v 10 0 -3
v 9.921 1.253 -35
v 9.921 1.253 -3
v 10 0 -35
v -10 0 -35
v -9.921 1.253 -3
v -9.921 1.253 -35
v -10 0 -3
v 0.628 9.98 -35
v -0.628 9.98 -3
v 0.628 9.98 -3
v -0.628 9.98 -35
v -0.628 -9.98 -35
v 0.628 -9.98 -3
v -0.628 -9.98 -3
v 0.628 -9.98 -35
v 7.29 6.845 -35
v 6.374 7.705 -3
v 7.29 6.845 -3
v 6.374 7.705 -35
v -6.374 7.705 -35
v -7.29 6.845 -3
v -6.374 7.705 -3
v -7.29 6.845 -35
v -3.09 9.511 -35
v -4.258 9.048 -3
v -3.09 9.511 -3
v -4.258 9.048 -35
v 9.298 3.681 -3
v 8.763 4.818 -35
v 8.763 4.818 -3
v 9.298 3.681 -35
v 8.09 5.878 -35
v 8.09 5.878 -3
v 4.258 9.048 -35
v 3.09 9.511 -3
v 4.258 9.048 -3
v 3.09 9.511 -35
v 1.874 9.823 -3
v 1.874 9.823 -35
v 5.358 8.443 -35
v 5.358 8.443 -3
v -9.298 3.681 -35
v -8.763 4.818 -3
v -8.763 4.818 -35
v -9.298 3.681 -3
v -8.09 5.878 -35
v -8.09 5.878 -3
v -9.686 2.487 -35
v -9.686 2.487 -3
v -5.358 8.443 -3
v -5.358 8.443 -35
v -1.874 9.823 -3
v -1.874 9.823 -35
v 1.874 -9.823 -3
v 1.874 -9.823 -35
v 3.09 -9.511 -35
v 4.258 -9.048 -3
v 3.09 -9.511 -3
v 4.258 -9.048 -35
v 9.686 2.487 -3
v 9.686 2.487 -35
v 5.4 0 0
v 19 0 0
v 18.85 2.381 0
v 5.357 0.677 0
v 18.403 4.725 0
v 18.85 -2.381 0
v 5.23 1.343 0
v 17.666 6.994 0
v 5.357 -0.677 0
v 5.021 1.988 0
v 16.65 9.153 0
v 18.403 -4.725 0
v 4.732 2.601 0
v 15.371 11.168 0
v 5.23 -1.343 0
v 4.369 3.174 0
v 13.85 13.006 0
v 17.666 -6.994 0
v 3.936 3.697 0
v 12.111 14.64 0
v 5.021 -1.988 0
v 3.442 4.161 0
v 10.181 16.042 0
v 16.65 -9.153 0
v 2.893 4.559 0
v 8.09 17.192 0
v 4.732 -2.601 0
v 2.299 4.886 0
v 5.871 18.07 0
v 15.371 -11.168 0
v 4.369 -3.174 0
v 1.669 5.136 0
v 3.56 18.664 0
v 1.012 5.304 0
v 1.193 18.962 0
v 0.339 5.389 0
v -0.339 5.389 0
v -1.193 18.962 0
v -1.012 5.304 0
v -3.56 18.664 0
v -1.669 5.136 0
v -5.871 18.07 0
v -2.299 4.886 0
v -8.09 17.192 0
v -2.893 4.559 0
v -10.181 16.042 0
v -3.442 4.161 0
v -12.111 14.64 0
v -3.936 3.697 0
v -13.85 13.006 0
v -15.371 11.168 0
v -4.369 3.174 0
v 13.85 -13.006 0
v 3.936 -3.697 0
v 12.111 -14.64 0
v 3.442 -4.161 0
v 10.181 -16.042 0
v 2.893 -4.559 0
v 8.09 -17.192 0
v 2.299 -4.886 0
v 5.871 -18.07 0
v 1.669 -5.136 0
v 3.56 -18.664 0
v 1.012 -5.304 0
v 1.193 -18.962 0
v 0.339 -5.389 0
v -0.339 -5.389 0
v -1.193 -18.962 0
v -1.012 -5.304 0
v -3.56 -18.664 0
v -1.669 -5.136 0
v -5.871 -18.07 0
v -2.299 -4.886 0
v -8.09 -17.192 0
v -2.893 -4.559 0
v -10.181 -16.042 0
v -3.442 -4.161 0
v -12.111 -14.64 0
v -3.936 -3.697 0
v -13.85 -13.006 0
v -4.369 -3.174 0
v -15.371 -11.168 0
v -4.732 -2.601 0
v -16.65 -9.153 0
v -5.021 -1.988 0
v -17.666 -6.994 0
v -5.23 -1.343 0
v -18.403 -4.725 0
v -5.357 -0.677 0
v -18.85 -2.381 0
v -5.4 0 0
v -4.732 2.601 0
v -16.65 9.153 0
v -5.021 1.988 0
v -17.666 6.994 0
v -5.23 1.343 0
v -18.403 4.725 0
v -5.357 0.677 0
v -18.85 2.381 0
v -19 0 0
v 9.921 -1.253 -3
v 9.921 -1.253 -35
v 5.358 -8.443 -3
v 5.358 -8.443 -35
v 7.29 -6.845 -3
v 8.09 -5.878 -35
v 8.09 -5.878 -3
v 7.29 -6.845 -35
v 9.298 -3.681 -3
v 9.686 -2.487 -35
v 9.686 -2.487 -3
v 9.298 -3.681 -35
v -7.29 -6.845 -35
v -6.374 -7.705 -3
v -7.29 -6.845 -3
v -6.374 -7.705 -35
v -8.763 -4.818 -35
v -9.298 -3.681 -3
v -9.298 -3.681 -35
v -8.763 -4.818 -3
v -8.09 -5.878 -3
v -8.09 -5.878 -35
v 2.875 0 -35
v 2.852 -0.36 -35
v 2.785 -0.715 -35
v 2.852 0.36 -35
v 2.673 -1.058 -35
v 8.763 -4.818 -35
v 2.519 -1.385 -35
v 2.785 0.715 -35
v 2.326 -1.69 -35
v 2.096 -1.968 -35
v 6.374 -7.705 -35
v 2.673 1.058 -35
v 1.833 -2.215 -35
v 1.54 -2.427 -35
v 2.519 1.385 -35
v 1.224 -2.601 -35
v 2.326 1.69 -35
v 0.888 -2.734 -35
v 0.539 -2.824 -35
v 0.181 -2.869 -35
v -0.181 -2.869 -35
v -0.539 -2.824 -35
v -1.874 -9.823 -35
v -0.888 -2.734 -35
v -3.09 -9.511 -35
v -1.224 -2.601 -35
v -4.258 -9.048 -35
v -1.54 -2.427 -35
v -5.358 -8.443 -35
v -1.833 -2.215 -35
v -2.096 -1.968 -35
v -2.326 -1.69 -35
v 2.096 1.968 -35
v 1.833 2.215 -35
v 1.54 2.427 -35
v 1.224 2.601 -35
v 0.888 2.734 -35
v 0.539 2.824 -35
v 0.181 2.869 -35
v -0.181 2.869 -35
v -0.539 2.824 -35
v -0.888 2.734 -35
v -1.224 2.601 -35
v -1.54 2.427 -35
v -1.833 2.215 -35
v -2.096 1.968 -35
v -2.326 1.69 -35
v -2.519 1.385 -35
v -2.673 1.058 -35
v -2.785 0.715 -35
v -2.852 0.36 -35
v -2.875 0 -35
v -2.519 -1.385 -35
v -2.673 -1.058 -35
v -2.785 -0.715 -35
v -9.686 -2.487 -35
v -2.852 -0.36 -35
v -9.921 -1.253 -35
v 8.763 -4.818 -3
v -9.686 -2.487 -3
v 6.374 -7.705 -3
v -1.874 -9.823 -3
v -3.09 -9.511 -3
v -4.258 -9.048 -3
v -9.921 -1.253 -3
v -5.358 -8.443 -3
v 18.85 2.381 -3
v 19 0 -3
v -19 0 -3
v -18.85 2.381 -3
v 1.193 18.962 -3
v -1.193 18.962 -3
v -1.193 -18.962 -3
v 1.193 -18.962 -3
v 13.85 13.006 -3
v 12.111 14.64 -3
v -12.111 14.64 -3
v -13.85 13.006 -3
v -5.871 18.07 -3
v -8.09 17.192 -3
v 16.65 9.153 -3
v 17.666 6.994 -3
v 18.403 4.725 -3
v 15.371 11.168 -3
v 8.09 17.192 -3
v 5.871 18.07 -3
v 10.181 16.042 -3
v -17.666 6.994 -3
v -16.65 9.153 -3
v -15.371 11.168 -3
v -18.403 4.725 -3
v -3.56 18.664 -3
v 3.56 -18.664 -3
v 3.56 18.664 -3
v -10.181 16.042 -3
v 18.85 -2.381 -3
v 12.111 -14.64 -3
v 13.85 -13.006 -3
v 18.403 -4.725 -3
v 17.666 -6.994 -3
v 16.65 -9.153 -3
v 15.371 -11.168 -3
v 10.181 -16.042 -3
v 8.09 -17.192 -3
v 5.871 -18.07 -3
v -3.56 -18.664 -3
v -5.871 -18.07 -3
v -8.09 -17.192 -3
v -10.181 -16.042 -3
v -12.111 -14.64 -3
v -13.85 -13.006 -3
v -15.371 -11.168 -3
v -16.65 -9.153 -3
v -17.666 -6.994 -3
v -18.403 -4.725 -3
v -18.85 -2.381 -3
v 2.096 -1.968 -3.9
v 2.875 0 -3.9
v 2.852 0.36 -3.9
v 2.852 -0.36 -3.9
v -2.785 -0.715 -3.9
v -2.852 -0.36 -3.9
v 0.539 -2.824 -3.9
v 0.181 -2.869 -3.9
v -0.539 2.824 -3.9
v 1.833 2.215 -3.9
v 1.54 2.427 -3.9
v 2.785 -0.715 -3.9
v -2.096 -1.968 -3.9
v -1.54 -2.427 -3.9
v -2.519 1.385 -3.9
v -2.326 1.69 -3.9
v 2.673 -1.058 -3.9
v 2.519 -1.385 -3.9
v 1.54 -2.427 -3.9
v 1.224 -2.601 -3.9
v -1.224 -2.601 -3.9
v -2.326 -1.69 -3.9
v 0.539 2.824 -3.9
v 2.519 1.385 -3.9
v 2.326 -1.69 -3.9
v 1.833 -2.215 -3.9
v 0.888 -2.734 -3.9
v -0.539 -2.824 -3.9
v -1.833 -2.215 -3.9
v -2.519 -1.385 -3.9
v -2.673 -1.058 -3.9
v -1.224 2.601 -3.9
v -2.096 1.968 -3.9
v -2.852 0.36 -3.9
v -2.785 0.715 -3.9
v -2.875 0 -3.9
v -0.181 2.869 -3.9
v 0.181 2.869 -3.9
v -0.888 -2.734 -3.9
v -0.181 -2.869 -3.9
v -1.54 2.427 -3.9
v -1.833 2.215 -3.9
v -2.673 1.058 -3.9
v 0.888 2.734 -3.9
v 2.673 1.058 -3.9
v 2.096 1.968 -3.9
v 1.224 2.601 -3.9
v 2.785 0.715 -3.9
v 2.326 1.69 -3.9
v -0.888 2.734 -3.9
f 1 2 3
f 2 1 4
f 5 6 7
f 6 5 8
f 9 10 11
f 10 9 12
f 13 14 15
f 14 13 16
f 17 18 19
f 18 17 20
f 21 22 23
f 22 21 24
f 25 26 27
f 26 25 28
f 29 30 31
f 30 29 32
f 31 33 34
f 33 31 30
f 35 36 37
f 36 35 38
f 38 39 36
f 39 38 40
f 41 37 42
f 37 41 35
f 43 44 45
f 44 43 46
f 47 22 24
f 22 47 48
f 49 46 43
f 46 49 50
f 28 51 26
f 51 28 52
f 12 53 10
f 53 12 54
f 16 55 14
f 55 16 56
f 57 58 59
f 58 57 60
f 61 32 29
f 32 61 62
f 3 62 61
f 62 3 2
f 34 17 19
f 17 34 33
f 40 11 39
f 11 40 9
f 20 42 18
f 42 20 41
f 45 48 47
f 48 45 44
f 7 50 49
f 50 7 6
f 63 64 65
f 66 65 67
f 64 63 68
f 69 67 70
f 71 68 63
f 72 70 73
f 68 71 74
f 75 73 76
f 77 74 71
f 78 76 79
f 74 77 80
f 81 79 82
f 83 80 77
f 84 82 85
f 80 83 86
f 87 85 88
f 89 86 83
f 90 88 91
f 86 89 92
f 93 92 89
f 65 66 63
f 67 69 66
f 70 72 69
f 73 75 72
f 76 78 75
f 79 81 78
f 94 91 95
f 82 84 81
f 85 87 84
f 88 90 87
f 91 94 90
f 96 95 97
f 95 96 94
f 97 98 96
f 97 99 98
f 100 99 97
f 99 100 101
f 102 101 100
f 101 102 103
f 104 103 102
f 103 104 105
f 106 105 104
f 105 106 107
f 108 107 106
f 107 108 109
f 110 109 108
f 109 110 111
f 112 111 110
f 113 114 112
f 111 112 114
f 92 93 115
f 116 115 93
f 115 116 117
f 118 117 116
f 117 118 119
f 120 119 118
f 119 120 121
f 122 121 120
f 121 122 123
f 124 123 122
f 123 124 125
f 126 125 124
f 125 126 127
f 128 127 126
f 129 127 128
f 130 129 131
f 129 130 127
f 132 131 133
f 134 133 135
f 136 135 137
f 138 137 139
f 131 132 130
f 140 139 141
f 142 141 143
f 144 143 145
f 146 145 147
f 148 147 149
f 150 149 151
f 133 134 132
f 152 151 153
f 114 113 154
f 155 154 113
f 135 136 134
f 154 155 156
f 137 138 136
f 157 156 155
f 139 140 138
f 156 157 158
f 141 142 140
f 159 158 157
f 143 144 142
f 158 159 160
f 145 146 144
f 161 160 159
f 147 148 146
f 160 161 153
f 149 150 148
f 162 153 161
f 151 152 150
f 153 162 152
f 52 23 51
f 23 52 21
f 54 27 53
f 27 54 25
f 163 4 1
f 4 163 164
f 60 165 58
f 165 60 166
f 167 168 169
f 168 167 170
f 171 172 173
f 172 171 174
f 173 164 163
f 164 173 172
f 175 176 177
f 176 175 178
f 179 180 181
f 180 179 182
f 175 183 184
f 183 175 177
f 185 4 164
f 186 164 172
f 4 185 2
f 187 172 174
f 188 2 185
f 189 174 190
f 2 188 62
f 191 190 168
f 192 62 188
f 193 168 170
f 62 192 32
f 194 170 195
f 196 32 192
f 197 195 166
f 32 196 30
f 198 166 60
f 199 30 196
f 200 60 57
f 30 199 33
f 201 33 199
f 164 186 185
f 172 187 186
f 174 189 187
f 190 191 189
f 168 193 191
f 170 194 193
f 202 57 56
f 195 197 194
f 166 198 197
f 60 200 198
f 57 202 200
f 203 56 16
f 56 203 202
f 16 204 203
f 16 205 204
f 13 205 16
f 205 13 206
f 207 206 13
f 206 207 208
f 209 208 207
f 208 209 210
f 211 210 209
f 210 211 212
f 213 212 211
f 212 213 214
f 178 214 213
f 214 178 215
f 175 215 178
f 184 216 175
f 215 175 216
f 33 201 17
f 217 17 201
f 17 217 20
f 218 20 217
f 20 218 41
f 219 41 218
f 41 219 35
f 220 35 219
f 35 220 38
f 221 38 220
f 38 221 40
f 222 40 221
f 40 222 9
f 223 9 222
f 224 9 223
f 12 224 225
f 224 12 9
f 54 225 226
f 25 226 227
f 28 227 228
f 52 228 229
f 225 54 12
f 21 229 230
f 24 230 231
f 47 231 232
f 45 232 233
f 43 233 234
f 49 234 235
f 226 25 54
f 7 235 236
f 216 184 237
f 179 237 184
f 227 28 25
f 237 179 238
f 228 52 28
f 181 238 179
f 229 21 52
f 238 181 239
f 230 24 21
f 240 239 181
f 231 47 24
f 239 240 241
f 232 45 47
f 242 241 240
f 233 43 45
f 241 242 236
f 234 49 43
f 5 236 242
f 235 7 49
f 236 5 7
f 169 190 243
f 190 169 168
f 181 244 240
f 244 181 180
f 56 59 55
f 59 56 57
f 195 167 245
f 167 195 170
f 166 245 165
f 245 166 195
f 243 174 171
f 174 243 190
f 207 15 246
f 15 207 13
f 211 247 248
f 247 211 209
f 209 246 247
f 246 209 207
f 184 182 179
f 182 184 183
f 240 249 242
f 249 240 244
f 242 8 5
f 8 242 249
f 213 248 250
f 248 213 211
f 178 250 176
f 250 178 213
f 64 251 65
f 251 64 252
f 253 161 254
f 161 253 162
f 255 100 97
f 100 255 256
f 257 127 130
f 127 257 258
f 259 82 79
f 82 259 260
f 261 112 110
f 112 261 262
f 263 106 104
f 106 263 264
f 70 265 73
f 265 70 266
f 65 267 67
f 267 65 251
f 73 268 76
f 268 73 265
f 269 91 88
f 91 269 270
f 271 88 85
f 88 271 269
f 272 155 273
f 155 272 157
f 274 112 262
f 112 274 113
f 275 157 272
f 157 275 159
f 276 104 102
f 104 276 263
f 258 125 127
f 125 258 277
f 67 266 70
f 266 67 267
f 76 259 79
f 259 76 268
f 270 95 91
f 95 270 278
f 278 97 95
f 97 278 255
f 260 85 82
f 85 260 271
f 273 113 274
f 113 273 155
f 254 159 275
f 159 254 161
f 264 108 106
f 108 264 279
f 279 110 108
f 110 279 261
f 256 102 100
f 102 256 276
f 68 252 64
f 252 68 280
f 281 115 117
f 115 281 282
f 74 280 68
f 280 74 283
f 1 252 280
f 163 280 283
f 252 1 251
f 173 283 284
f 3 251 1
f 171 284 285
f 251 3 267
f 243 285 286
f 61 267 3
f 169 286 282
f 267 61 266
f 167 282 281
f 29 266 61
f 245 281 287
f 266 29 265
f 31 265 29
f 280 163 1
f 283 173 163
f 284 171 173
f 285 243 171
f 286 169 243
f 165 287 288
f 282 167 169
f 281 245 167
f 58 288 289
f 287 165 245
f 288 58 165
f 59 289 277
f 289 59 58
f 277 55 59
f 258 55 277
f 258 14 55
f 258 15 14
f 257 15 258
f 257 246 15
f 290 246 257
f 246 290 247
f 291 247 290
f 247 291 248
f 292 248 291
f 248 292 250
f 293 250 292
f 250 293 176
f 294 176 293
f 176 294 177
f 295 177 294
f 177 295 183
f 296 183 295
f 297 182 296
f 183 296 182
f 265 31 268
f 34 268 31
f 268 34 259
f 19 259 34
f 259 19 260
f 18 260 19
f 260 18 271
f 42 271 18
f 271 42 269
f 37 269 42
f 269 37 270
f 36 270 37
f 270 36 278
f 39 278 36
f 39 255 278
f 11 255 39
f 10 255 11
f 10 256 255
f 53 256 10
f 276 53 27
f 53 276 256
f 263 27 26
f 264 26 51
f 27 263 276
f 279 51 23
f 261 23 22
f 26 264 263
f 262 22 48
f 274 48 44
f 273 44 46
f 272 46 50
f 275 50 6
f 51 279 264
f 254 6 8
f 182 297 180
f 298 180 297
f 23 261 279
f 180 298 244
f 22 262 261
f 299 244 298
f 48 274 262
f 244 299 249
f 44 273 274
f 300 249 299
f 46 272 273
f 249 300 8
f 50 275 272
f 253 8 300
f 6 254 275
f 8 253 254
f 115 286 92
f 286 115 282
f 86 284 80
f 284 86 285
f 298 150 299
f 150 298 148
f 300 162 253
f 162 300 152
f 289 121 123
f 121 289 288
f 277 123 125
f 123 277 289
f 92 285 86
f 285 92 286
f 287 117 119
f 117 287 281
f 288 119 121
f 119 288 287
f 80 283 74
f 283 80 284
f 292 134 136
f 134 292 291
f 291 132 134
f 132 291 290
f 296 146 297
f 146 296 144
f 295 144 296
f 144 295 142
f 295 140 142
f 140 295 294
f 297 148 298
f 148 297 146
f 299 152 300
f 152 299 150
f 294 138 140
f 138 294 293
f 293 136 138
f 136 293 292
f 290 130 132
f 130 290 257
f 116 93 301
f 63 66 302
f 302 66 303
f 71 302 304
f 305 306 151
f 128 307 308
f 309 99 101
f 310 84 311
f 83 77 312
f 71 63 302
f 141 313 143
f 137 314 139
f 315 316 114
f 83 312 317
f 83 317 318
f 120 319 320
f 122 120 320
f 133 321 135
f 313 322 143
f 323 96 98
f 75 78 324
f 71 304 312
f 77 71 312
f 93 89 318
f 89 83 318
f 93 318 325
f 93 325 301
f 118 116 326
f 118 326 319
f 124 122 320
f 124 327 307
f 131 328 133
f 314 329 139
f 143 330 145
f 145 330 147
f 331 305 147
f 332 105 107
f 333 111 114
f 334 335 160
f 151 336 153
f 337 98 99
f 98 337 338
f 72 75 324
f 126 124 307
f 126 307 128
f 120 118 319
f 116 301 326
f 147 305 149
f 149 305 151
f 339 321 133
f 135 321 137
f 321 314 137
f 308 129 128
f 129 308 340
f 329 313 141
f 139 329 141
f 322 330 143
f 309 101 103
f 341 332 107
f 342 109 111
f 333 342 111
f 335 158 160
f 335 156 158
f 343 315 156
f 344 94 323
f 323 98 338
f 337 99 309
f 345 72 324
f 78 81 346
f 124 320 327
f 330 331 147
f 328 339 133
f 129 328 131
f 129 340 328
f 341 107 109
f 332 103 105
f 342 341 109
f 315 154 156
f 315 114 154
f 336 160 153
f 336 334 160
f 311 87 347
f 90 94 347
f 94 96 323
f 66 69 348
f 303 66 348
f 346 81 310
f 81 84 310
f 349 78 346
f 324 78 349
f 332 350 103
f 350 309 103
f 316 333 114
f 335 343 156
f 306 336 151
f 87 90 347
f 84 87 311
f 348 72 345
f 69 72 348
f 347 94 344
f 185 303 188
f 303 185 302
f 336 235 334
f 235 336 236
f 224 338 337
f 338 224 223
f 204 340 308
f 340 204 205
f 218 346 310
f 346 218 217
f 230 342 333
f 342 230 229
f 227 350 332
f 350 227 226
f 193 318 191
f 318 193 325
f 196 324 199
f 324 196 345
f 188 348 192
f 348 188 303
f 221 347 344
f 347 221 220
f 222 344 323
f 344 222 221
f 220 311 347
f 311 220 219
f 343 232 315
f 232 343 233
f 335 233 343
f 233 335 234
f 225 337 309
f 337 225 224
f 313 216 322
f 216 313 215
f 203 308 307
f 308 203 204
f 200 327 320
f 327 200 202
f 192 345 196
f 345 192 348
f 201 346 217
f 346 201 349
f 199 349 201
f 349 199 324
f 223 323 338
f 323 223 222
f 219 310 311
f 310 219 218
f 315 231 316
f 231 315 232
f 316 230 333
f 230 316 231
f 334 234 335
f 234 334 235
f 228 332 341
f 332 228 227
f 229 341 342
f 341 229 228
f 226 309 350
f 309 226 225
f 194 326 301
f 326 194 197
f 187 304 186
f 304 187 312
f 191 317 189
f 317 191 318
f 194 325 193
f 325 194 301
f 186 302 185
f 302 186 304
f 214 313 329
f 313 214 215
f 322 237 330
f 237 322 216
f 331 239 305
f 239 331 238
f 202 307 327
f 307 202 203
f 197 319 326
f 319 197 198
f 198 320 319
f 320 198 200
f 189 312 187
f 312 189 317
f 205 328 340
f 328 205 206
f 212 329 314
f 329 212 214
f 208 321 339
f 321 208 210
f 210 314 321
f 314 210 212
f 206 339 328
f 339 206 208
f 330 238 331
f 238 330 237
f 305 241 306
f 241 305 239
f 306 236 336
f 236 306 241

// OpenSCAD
$fn = 50;


difference() {
	union() {
		translate(v = [0, 0, -35.0000000000]) {
			cylinder(h = 35, r = 10.0000000000);
		}
		translate(v = [0, 0, -3.0000000000]) {
			cylinder(h = 3, r = 19.0000000000);
		}
	}
	union() {
		translate(v = [0, 0, 0]) {
			rotate(a = [0, 0, 0]) {
				difference() {
					union() {
						#translate(v = [0, 0, -35.0000000000]) {
							cylinder(h = 35, r = 2.6000000000);
						}
						#translate(v = [0, 0, -3.9000000000]) {
							cylinder(h = 3.9000000000, r = 10.0000000000, r1 = 2.8750000000, r2 = 5.4000000000);
						}
						#translate(v = [0, 0, -35.0000000000]) {
							cylinder(h = 35, r = 2.8750000000);
						}
						#translate(v = [0, 0, -35.0000000000]) {
							cylinder(h = 35, r = 2.6000000000);
						}
					}
					union();
				}
			}
		}
	}
}
